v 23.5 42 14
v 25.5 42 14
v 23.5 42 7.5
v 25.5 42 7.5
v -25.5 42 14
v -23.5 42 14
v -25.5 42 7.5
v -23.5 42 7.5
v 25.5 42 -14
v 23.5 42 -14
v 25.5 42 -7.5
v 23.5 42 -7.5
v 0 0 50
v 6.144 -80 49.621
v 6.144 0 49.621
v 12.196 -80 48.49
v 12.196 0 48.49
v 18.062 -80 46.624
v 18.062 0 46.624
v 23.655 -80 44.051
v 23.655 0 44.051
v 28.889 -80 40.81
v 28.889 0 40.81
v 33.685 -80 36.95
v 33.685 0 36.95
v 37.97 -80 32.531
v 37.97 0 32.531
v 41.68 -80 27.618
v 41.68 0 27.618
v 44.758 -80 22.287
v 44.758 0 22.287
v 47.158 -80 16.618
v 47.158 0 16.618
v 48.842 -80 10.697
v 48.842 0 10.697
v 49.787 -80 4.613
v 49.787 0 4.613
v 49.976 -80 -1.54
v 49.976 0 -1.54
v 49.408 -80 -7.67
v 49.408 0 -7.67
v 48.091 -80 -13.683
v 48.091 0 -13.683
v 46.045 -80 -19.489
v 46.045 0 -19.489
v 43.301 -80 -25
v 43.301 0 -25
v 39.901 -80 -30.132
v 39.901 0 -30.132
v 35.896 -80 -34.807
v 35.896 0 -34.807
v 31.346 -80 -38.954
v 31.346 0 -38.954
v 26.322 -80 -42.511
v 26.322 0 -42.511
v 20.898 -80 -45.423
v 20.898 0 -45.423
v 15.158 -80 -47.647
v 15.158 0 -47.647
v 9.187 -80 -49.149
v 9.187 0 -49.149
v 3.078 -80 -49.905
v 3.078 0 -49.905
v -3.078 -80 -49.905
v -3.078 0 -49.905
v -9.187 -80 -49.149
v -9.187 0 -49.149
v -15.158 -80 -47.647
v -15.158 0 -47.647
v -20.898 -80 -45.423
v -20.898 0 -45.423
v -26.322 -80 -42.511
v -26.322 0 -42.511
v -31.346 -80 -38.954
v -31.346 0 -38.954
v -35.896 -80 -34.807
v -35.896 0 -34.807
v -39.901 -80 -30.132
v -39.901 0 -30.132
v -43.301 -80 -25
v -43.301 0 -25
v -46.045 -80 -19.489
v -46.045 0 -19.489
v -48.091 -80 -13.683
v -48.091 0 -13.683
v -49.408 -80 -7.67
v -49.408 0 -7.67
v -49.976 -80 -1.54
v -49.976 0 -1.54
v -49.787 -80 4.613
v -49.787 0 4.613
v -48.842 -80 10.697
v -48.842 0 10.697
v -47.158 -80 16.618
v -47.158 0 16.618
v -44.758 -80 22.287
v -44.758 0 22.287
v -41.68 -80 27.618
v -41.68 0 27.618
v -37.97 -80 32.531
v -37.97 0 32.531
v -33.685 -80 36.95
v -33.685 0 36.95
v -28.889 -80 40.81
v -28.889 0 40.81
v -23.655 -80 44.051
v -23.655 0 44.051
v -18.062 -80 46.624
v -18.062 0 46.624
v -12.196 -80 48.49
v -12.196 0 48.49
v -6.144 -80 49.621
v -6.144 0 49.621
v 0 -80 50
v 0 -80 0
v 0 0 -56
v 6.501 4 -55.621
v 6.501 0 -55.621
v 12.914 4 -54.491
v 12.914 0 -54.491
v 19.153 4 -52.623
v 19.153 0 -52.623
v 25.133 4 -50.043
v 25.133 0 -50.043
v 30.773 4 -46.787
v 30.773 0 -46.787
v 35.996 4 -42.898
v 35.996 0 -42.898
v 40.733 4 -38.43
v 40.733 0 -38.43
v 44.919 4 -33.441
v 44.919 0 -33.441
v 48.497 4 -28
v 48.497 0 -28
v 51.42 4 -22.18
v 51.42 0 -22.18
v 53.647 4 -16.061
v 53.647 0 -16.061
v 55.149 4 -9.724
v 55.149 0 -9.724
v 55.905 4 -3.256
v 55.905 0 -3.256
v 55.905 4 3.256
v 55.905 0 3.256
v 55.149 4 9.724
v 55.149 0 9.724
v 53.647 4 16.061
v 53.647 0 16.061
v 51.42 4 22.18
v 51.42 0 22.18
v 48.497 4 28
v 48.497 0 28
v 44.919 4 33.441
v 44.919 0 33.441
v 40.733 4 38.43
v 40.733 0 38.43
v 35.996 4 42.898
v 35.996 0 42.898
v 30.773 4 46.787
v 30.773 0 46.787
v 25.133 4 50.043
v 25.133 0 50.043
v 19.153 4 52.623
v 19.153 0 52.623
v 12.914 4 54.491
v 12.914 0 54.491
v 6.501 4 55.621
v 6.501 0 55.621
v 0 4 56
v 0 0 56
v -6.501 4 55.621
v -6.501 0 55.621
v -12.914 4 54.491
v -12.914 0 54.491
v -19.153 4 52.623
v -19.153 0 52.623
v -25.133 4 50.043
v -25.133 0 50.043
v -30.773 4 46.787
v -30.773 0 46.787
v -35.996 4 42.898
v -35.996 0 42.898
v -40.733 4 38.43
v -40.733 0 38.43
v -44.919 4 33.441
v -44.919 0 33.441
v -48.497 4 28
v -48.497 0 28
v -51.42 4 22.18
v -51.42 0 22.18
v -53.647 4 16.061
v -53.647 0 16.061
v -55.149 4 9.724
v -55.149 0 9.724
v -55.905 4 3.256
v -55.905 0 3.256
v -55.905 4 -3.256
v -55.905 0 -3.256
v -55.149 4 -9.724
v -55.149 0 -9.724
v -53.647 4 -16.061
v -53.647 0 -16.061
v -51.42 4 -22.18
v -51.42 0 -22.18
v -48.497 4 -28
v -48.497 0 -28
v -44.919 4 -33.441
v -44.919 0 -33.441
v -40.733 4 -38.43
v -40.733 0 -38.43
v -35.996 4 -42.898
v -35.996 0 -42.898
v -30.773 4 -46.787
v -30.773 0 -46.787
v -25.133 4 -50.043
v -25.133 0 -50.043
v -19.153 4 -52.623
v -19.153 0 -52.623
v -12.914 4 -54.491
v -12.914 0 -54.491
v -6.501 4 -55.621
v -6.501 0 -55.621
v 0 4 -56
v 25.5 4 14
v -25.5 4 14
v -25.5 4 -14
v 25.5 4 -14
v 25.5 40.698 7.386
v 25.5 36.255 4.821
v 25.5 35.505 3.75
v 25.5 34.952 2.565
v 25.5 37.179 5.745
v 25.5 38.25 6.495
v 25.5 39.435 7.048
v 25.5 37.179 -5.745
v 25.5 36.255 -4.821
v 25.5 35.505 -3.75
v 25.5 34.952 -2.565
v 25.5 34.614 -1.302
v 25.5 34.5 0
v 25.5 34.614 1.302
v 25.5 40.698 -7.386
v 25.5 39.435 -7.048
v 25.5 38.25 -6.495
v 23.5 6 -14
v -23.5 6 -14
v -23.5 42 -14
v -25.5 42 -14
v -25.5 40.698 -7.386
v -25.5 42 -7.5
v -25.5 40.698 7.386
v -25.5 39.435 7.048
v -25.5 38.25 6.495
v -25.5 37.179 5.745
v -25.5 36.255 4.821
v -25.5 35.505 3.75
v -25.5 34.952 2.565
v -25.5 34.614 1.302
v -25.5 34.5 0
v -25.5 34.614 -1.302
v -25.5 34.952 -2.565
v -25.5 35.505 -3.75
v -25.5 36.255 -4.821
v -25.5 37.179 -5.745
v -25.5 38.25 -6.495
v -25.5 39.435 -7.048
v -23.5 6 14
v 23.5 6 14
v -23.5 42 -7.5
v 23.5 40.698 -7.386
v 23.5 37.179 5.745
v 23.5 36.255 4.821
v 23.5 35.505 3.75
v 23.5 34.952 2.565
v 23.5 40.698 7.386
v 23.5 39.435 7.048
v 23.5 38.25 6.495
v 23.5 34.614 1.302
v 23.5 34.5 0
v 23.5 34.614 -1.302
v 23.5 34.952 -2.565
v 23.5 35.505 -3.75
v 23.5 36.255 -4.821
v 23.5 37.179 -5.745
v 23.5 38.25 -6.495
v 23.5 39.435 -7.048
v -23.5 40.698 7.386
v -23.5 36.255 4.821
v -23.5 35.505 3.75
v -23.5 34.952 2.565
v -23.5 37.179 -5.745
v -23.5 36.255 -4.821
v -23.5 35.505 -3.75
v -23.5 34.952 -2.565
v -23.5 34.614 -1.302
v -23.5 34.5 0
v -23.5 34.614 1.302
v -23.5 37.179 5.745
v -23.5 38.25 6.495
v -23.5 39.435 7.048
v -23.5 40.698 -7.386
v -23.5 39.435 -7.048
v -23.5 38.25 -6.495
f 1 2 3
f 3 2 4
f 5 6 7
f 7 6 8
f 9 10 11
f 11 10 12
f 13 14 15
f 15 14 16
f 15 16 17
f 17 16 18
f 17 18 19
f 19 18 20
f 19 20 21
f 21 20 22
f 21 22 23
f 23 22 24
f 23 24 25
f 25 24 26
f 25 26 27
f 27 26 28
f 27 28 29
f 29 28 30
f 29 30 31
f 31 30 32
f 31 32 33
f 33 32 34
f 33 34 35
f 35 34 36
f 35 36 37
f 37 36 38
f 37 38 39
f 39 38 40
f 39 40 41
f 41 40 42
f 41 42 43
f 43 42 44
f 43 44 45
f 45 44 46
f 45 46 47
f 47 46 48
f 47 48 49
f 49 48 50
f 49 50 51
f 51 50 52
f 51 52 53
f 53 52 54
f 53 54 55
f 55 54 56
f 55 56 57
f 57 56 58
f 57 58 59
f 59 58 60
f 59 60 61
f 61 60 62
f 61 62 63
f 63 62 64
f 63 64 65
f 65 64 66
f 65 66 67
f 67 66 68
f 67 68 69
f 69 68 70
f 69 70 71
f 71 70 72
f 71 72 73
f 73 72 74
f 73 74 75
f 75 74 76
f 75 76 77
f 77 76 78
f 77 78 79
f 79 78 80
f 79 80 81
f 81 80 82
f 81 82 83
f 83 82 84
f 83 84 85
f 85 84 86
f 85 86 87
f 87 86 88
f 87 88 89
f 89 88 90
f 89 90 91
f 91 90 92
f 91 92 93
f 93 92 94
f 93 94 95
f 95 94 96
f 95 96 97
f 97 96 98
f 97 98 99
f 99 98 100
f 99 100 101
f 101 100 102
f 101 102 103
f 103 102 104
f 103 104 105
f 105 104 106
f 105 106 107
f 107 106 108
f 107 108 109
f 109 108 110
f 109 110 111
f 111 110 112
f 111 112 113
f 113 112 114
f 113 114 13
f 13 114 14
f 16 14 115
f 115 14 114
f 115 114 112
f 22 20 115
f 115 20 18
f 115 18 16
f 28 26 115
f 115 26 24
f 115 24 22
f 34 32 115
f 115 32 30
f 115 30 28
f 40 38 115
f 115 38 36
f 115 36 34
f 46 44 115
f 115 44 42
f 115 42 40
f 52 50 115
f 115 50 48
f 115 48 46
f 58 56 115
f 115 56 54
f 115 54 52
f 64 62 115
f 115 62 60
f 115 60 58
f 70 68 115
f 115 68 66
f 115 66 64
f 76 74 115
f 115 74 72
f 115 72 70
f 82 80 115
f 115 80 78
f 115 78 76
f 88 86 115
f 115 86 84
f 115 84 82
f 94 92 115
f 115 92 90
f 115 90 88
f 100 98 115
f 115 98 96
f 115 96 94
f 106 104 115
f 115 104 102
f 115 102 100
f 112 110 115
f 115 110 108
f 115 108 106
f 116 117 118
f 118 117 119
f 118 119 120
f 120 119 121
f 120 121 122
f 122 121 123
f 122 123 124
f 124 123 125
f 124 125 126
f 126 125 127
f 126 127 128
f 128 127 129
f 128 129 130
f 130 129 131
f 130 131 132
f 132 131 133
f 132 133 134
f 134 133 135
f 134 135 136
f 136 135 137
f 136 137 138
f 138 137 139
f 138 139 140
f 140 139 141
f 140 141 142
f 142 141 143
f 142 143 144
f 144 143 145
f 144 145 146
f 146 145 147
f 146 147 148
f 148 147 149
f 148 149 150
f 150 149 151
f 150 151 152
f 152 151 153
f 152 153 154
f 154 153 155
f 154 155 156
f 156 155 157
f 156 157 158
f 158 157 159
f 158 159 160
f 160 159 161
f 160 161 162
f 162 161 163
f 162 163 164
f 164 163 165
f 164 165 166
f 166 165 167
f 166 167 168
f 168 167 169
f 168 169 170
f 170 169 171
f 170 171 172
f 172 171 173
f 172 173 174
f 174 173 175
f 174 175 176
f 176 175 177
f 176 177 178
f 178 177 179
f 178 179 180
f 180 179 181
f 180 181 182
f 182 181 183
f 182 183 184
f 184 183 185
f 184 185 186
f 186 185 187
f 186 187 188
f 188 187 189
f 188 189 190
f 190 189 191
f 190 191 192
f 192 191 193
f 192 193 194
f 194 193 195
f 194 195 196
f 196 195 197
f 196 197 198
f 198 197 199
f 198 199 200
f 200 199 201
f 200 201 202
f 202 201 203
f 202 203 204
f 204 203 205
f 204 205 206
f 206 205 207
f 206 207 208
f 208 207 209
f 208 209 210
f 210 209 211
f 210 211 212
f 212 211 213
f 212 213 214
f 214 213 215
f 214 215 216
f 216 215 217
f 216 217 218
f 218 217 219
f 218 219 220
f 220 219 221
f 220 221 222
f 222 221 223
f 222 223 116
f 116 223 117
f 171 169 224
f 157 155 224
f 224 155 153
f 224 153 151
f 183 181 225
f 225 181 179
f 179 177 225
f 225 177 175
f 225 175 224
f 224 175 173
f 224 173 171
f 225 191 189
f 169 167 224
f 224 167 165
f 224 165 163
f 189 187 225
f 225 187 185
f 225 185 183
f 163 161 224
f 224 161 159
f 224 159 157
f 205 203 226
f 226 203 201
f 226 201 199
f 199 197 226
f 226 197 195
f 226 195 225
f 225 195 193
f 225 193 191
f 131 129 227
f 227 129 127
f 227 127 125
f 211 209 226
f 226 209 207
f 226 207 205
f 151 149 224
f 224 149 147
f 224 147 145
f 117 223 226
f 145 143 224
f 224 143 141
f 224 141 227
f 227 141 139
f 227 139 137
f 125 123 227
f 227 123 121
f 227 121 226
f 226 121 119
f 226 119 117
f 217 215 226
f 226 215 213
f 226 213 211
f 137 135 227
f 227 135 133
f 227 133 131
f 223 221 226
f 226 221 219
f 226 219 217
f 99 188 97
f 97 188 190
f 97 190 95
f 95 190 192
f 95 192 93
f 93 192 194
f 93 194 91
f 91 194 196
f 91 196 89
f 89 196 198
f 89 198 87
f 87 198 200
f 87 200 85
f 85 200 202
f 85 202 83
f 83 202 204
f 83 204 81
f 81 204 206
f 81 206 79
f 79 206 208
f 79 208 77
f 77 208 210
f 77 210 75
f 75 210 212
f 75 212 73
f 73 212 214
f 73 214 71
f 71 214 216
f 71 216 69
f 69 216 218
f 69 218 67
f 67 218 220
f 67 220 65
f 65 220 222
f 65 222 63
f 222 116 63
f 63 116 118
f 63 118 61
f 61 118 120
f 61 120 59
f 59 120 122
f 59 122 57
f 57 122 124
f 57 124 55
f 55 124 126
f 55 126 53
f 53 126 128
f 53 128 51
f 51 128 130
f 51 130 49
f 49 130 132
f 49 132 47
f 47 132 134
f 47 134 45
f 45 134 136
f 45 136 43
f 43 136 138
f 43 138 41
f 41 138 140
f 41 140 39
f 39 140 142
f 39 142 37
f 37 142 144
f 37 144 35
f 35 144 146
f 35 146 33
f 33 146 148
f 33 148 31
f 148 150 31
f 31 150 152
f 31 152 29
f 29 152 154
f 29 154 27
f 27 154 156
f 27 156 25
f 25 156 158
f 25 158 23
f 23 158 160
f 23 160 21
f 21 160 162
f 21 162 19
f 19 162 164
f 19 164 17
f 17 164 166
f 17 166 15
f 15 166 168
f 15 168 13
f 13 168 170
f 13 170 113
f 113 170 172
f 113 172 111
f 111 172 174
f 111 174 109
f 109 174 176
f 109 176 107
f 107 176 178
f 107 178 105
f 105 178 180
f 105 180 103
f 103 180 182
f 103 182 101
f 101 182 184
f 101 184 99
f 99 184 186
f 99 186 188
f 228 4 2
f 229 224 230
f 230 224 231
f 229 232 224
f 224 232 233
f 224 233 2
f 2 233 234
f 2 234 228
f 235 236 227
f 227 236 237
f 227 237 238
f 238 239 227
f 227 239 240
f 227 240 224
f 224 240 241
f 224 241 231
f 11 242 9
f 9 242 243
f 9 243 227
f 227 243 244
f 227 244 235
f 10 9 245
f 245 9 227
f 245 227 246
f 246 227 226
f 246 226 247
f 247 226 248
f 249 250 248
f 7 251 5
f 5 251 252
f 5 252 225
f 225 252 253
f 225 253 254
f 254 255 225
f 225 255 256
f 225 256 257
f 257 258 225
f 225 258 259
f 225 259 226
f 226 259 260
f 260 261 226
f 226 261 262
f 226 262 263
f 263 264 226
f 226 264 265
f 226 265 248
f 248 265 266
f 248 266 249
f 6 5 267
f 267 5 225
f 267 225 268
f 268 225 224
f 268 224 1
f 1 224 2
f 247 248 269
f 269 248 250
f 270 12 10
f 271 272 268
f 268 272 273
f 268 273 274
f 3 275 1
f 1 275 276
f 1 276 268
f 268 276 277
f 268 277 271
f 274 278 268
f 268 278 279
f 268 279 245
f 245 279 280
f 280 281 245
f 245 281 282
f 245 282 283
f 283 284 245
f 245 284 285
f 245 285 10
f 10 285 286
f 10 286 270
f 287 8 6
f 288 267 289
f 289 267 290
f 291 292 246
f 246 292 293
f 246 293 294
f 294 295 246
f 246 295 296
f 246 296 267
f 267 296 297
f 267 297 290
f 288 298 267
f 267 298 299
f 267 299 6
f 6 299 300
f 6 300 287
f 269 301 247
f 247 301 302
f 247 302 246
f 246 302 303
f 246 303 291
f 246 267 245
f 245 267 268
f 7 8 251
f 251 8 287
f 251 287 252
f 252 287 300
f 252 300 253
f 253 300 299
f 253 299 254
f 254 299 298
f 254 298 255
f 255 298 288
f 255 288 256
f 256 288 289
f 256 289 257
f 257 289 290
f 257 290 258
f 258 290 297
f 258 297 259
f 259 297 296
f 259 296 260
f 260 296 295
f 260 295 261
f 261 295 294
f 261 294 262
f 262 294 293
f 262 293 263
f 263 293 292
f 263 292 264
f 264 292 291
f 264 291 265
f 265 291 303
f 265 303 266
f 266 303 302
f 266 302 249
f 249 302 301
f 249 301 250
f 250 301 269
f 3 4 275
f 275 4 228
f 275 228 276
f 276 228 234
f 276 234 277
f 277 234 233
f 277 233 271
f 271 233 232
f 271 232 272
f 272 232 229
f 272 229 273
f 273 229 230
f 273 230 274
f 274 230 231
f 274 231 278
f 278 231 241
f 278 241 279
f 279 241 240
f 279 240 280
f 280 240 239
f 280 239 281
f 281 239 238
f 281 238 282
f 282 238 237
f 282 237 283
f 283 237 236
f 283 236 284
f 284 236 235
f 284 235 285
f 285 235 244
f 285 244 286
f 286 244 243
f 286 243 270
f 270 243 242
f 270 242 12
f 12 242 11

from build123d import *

# Parameters (mm, degrees)
SKETCH1_R           = 50
BOSS_EXTRUDE1_DEPTH = 80
SKETCH1_3_R         = 56
BOSS_EXTRUDE2_DEPTH = 4
SKETCH5_W           = 51
SKETCH5_H           = 28
BOSS_EXTRUDE4_DEPTH = 38
SKETCH6_W           = 47
SKETCH6_H           = 28
CUT_EXTRUDE2_DEPTH  = 36
SKETCH8_R           = 7.5
CUT_EXTRUDE3_DEPTH  = 51


with BuildPart() as part:
    # Sketch1 → Boss-Extrude1 (new body)
    with BuildSketch(Plane(origin=(0, 0, 0), x_dir=(1, 0, 0), z_dir=(0, 1, 0))):
        Circle(SKETCH1_R)
    extrude(amount=-BOSS_EXTRUDE1_DEPTH)

    # Sketch1<3> → Boss-Extrude2 (add)
    with BuildSketch(Plane(origin=(0, 0, 0), x_dir=(1, 0, 0), z_dir=(0, 1, 0))):
        Circle(SKETCH1_3_R)
    extrude(amount=BOSS_EXTRUDE2_DEPTH)

    # Sketch5 → Boss-Extrude4 (add)
    with BuildSketch(Plane(origin=(0, 4, 0), x_dir=(1, 0, 0), z_dir=(0, 1, 0))):
        Rectangle(SKETCH5_W, SKETCH5_H)
    extrude(amount=BOSS_EXTRUDE4_DEPTH)

    # Sketch6 → Cut-Extrude2 (cut)
    with BuildSketch(Plane(origin=(0, 42, 0), x_dir=(1, 0, 0), z_dir=(0, 1, 0))):
        Rectangle(SKETCH6_W, SKETCH6_H)
    extrude(amount=-CUT_EXTRUDE2_DEPTH, mode=Mode.SUBTRACT)

    # Sketch8 → Cut-Extrude3 (cut)
    with BuildSketch(Plane(origin=(25.5, 0, 0), x_dir=(0, 0, -1), z_dir=(1, 0, 0))):
        with Locations((0, 42)):
            Circle(SKETCH8_R)
    extrude(amount=-CUT_EXTRUDE3_DEPTH, mode=Mode.SUBTRACT)


solid = part.part
